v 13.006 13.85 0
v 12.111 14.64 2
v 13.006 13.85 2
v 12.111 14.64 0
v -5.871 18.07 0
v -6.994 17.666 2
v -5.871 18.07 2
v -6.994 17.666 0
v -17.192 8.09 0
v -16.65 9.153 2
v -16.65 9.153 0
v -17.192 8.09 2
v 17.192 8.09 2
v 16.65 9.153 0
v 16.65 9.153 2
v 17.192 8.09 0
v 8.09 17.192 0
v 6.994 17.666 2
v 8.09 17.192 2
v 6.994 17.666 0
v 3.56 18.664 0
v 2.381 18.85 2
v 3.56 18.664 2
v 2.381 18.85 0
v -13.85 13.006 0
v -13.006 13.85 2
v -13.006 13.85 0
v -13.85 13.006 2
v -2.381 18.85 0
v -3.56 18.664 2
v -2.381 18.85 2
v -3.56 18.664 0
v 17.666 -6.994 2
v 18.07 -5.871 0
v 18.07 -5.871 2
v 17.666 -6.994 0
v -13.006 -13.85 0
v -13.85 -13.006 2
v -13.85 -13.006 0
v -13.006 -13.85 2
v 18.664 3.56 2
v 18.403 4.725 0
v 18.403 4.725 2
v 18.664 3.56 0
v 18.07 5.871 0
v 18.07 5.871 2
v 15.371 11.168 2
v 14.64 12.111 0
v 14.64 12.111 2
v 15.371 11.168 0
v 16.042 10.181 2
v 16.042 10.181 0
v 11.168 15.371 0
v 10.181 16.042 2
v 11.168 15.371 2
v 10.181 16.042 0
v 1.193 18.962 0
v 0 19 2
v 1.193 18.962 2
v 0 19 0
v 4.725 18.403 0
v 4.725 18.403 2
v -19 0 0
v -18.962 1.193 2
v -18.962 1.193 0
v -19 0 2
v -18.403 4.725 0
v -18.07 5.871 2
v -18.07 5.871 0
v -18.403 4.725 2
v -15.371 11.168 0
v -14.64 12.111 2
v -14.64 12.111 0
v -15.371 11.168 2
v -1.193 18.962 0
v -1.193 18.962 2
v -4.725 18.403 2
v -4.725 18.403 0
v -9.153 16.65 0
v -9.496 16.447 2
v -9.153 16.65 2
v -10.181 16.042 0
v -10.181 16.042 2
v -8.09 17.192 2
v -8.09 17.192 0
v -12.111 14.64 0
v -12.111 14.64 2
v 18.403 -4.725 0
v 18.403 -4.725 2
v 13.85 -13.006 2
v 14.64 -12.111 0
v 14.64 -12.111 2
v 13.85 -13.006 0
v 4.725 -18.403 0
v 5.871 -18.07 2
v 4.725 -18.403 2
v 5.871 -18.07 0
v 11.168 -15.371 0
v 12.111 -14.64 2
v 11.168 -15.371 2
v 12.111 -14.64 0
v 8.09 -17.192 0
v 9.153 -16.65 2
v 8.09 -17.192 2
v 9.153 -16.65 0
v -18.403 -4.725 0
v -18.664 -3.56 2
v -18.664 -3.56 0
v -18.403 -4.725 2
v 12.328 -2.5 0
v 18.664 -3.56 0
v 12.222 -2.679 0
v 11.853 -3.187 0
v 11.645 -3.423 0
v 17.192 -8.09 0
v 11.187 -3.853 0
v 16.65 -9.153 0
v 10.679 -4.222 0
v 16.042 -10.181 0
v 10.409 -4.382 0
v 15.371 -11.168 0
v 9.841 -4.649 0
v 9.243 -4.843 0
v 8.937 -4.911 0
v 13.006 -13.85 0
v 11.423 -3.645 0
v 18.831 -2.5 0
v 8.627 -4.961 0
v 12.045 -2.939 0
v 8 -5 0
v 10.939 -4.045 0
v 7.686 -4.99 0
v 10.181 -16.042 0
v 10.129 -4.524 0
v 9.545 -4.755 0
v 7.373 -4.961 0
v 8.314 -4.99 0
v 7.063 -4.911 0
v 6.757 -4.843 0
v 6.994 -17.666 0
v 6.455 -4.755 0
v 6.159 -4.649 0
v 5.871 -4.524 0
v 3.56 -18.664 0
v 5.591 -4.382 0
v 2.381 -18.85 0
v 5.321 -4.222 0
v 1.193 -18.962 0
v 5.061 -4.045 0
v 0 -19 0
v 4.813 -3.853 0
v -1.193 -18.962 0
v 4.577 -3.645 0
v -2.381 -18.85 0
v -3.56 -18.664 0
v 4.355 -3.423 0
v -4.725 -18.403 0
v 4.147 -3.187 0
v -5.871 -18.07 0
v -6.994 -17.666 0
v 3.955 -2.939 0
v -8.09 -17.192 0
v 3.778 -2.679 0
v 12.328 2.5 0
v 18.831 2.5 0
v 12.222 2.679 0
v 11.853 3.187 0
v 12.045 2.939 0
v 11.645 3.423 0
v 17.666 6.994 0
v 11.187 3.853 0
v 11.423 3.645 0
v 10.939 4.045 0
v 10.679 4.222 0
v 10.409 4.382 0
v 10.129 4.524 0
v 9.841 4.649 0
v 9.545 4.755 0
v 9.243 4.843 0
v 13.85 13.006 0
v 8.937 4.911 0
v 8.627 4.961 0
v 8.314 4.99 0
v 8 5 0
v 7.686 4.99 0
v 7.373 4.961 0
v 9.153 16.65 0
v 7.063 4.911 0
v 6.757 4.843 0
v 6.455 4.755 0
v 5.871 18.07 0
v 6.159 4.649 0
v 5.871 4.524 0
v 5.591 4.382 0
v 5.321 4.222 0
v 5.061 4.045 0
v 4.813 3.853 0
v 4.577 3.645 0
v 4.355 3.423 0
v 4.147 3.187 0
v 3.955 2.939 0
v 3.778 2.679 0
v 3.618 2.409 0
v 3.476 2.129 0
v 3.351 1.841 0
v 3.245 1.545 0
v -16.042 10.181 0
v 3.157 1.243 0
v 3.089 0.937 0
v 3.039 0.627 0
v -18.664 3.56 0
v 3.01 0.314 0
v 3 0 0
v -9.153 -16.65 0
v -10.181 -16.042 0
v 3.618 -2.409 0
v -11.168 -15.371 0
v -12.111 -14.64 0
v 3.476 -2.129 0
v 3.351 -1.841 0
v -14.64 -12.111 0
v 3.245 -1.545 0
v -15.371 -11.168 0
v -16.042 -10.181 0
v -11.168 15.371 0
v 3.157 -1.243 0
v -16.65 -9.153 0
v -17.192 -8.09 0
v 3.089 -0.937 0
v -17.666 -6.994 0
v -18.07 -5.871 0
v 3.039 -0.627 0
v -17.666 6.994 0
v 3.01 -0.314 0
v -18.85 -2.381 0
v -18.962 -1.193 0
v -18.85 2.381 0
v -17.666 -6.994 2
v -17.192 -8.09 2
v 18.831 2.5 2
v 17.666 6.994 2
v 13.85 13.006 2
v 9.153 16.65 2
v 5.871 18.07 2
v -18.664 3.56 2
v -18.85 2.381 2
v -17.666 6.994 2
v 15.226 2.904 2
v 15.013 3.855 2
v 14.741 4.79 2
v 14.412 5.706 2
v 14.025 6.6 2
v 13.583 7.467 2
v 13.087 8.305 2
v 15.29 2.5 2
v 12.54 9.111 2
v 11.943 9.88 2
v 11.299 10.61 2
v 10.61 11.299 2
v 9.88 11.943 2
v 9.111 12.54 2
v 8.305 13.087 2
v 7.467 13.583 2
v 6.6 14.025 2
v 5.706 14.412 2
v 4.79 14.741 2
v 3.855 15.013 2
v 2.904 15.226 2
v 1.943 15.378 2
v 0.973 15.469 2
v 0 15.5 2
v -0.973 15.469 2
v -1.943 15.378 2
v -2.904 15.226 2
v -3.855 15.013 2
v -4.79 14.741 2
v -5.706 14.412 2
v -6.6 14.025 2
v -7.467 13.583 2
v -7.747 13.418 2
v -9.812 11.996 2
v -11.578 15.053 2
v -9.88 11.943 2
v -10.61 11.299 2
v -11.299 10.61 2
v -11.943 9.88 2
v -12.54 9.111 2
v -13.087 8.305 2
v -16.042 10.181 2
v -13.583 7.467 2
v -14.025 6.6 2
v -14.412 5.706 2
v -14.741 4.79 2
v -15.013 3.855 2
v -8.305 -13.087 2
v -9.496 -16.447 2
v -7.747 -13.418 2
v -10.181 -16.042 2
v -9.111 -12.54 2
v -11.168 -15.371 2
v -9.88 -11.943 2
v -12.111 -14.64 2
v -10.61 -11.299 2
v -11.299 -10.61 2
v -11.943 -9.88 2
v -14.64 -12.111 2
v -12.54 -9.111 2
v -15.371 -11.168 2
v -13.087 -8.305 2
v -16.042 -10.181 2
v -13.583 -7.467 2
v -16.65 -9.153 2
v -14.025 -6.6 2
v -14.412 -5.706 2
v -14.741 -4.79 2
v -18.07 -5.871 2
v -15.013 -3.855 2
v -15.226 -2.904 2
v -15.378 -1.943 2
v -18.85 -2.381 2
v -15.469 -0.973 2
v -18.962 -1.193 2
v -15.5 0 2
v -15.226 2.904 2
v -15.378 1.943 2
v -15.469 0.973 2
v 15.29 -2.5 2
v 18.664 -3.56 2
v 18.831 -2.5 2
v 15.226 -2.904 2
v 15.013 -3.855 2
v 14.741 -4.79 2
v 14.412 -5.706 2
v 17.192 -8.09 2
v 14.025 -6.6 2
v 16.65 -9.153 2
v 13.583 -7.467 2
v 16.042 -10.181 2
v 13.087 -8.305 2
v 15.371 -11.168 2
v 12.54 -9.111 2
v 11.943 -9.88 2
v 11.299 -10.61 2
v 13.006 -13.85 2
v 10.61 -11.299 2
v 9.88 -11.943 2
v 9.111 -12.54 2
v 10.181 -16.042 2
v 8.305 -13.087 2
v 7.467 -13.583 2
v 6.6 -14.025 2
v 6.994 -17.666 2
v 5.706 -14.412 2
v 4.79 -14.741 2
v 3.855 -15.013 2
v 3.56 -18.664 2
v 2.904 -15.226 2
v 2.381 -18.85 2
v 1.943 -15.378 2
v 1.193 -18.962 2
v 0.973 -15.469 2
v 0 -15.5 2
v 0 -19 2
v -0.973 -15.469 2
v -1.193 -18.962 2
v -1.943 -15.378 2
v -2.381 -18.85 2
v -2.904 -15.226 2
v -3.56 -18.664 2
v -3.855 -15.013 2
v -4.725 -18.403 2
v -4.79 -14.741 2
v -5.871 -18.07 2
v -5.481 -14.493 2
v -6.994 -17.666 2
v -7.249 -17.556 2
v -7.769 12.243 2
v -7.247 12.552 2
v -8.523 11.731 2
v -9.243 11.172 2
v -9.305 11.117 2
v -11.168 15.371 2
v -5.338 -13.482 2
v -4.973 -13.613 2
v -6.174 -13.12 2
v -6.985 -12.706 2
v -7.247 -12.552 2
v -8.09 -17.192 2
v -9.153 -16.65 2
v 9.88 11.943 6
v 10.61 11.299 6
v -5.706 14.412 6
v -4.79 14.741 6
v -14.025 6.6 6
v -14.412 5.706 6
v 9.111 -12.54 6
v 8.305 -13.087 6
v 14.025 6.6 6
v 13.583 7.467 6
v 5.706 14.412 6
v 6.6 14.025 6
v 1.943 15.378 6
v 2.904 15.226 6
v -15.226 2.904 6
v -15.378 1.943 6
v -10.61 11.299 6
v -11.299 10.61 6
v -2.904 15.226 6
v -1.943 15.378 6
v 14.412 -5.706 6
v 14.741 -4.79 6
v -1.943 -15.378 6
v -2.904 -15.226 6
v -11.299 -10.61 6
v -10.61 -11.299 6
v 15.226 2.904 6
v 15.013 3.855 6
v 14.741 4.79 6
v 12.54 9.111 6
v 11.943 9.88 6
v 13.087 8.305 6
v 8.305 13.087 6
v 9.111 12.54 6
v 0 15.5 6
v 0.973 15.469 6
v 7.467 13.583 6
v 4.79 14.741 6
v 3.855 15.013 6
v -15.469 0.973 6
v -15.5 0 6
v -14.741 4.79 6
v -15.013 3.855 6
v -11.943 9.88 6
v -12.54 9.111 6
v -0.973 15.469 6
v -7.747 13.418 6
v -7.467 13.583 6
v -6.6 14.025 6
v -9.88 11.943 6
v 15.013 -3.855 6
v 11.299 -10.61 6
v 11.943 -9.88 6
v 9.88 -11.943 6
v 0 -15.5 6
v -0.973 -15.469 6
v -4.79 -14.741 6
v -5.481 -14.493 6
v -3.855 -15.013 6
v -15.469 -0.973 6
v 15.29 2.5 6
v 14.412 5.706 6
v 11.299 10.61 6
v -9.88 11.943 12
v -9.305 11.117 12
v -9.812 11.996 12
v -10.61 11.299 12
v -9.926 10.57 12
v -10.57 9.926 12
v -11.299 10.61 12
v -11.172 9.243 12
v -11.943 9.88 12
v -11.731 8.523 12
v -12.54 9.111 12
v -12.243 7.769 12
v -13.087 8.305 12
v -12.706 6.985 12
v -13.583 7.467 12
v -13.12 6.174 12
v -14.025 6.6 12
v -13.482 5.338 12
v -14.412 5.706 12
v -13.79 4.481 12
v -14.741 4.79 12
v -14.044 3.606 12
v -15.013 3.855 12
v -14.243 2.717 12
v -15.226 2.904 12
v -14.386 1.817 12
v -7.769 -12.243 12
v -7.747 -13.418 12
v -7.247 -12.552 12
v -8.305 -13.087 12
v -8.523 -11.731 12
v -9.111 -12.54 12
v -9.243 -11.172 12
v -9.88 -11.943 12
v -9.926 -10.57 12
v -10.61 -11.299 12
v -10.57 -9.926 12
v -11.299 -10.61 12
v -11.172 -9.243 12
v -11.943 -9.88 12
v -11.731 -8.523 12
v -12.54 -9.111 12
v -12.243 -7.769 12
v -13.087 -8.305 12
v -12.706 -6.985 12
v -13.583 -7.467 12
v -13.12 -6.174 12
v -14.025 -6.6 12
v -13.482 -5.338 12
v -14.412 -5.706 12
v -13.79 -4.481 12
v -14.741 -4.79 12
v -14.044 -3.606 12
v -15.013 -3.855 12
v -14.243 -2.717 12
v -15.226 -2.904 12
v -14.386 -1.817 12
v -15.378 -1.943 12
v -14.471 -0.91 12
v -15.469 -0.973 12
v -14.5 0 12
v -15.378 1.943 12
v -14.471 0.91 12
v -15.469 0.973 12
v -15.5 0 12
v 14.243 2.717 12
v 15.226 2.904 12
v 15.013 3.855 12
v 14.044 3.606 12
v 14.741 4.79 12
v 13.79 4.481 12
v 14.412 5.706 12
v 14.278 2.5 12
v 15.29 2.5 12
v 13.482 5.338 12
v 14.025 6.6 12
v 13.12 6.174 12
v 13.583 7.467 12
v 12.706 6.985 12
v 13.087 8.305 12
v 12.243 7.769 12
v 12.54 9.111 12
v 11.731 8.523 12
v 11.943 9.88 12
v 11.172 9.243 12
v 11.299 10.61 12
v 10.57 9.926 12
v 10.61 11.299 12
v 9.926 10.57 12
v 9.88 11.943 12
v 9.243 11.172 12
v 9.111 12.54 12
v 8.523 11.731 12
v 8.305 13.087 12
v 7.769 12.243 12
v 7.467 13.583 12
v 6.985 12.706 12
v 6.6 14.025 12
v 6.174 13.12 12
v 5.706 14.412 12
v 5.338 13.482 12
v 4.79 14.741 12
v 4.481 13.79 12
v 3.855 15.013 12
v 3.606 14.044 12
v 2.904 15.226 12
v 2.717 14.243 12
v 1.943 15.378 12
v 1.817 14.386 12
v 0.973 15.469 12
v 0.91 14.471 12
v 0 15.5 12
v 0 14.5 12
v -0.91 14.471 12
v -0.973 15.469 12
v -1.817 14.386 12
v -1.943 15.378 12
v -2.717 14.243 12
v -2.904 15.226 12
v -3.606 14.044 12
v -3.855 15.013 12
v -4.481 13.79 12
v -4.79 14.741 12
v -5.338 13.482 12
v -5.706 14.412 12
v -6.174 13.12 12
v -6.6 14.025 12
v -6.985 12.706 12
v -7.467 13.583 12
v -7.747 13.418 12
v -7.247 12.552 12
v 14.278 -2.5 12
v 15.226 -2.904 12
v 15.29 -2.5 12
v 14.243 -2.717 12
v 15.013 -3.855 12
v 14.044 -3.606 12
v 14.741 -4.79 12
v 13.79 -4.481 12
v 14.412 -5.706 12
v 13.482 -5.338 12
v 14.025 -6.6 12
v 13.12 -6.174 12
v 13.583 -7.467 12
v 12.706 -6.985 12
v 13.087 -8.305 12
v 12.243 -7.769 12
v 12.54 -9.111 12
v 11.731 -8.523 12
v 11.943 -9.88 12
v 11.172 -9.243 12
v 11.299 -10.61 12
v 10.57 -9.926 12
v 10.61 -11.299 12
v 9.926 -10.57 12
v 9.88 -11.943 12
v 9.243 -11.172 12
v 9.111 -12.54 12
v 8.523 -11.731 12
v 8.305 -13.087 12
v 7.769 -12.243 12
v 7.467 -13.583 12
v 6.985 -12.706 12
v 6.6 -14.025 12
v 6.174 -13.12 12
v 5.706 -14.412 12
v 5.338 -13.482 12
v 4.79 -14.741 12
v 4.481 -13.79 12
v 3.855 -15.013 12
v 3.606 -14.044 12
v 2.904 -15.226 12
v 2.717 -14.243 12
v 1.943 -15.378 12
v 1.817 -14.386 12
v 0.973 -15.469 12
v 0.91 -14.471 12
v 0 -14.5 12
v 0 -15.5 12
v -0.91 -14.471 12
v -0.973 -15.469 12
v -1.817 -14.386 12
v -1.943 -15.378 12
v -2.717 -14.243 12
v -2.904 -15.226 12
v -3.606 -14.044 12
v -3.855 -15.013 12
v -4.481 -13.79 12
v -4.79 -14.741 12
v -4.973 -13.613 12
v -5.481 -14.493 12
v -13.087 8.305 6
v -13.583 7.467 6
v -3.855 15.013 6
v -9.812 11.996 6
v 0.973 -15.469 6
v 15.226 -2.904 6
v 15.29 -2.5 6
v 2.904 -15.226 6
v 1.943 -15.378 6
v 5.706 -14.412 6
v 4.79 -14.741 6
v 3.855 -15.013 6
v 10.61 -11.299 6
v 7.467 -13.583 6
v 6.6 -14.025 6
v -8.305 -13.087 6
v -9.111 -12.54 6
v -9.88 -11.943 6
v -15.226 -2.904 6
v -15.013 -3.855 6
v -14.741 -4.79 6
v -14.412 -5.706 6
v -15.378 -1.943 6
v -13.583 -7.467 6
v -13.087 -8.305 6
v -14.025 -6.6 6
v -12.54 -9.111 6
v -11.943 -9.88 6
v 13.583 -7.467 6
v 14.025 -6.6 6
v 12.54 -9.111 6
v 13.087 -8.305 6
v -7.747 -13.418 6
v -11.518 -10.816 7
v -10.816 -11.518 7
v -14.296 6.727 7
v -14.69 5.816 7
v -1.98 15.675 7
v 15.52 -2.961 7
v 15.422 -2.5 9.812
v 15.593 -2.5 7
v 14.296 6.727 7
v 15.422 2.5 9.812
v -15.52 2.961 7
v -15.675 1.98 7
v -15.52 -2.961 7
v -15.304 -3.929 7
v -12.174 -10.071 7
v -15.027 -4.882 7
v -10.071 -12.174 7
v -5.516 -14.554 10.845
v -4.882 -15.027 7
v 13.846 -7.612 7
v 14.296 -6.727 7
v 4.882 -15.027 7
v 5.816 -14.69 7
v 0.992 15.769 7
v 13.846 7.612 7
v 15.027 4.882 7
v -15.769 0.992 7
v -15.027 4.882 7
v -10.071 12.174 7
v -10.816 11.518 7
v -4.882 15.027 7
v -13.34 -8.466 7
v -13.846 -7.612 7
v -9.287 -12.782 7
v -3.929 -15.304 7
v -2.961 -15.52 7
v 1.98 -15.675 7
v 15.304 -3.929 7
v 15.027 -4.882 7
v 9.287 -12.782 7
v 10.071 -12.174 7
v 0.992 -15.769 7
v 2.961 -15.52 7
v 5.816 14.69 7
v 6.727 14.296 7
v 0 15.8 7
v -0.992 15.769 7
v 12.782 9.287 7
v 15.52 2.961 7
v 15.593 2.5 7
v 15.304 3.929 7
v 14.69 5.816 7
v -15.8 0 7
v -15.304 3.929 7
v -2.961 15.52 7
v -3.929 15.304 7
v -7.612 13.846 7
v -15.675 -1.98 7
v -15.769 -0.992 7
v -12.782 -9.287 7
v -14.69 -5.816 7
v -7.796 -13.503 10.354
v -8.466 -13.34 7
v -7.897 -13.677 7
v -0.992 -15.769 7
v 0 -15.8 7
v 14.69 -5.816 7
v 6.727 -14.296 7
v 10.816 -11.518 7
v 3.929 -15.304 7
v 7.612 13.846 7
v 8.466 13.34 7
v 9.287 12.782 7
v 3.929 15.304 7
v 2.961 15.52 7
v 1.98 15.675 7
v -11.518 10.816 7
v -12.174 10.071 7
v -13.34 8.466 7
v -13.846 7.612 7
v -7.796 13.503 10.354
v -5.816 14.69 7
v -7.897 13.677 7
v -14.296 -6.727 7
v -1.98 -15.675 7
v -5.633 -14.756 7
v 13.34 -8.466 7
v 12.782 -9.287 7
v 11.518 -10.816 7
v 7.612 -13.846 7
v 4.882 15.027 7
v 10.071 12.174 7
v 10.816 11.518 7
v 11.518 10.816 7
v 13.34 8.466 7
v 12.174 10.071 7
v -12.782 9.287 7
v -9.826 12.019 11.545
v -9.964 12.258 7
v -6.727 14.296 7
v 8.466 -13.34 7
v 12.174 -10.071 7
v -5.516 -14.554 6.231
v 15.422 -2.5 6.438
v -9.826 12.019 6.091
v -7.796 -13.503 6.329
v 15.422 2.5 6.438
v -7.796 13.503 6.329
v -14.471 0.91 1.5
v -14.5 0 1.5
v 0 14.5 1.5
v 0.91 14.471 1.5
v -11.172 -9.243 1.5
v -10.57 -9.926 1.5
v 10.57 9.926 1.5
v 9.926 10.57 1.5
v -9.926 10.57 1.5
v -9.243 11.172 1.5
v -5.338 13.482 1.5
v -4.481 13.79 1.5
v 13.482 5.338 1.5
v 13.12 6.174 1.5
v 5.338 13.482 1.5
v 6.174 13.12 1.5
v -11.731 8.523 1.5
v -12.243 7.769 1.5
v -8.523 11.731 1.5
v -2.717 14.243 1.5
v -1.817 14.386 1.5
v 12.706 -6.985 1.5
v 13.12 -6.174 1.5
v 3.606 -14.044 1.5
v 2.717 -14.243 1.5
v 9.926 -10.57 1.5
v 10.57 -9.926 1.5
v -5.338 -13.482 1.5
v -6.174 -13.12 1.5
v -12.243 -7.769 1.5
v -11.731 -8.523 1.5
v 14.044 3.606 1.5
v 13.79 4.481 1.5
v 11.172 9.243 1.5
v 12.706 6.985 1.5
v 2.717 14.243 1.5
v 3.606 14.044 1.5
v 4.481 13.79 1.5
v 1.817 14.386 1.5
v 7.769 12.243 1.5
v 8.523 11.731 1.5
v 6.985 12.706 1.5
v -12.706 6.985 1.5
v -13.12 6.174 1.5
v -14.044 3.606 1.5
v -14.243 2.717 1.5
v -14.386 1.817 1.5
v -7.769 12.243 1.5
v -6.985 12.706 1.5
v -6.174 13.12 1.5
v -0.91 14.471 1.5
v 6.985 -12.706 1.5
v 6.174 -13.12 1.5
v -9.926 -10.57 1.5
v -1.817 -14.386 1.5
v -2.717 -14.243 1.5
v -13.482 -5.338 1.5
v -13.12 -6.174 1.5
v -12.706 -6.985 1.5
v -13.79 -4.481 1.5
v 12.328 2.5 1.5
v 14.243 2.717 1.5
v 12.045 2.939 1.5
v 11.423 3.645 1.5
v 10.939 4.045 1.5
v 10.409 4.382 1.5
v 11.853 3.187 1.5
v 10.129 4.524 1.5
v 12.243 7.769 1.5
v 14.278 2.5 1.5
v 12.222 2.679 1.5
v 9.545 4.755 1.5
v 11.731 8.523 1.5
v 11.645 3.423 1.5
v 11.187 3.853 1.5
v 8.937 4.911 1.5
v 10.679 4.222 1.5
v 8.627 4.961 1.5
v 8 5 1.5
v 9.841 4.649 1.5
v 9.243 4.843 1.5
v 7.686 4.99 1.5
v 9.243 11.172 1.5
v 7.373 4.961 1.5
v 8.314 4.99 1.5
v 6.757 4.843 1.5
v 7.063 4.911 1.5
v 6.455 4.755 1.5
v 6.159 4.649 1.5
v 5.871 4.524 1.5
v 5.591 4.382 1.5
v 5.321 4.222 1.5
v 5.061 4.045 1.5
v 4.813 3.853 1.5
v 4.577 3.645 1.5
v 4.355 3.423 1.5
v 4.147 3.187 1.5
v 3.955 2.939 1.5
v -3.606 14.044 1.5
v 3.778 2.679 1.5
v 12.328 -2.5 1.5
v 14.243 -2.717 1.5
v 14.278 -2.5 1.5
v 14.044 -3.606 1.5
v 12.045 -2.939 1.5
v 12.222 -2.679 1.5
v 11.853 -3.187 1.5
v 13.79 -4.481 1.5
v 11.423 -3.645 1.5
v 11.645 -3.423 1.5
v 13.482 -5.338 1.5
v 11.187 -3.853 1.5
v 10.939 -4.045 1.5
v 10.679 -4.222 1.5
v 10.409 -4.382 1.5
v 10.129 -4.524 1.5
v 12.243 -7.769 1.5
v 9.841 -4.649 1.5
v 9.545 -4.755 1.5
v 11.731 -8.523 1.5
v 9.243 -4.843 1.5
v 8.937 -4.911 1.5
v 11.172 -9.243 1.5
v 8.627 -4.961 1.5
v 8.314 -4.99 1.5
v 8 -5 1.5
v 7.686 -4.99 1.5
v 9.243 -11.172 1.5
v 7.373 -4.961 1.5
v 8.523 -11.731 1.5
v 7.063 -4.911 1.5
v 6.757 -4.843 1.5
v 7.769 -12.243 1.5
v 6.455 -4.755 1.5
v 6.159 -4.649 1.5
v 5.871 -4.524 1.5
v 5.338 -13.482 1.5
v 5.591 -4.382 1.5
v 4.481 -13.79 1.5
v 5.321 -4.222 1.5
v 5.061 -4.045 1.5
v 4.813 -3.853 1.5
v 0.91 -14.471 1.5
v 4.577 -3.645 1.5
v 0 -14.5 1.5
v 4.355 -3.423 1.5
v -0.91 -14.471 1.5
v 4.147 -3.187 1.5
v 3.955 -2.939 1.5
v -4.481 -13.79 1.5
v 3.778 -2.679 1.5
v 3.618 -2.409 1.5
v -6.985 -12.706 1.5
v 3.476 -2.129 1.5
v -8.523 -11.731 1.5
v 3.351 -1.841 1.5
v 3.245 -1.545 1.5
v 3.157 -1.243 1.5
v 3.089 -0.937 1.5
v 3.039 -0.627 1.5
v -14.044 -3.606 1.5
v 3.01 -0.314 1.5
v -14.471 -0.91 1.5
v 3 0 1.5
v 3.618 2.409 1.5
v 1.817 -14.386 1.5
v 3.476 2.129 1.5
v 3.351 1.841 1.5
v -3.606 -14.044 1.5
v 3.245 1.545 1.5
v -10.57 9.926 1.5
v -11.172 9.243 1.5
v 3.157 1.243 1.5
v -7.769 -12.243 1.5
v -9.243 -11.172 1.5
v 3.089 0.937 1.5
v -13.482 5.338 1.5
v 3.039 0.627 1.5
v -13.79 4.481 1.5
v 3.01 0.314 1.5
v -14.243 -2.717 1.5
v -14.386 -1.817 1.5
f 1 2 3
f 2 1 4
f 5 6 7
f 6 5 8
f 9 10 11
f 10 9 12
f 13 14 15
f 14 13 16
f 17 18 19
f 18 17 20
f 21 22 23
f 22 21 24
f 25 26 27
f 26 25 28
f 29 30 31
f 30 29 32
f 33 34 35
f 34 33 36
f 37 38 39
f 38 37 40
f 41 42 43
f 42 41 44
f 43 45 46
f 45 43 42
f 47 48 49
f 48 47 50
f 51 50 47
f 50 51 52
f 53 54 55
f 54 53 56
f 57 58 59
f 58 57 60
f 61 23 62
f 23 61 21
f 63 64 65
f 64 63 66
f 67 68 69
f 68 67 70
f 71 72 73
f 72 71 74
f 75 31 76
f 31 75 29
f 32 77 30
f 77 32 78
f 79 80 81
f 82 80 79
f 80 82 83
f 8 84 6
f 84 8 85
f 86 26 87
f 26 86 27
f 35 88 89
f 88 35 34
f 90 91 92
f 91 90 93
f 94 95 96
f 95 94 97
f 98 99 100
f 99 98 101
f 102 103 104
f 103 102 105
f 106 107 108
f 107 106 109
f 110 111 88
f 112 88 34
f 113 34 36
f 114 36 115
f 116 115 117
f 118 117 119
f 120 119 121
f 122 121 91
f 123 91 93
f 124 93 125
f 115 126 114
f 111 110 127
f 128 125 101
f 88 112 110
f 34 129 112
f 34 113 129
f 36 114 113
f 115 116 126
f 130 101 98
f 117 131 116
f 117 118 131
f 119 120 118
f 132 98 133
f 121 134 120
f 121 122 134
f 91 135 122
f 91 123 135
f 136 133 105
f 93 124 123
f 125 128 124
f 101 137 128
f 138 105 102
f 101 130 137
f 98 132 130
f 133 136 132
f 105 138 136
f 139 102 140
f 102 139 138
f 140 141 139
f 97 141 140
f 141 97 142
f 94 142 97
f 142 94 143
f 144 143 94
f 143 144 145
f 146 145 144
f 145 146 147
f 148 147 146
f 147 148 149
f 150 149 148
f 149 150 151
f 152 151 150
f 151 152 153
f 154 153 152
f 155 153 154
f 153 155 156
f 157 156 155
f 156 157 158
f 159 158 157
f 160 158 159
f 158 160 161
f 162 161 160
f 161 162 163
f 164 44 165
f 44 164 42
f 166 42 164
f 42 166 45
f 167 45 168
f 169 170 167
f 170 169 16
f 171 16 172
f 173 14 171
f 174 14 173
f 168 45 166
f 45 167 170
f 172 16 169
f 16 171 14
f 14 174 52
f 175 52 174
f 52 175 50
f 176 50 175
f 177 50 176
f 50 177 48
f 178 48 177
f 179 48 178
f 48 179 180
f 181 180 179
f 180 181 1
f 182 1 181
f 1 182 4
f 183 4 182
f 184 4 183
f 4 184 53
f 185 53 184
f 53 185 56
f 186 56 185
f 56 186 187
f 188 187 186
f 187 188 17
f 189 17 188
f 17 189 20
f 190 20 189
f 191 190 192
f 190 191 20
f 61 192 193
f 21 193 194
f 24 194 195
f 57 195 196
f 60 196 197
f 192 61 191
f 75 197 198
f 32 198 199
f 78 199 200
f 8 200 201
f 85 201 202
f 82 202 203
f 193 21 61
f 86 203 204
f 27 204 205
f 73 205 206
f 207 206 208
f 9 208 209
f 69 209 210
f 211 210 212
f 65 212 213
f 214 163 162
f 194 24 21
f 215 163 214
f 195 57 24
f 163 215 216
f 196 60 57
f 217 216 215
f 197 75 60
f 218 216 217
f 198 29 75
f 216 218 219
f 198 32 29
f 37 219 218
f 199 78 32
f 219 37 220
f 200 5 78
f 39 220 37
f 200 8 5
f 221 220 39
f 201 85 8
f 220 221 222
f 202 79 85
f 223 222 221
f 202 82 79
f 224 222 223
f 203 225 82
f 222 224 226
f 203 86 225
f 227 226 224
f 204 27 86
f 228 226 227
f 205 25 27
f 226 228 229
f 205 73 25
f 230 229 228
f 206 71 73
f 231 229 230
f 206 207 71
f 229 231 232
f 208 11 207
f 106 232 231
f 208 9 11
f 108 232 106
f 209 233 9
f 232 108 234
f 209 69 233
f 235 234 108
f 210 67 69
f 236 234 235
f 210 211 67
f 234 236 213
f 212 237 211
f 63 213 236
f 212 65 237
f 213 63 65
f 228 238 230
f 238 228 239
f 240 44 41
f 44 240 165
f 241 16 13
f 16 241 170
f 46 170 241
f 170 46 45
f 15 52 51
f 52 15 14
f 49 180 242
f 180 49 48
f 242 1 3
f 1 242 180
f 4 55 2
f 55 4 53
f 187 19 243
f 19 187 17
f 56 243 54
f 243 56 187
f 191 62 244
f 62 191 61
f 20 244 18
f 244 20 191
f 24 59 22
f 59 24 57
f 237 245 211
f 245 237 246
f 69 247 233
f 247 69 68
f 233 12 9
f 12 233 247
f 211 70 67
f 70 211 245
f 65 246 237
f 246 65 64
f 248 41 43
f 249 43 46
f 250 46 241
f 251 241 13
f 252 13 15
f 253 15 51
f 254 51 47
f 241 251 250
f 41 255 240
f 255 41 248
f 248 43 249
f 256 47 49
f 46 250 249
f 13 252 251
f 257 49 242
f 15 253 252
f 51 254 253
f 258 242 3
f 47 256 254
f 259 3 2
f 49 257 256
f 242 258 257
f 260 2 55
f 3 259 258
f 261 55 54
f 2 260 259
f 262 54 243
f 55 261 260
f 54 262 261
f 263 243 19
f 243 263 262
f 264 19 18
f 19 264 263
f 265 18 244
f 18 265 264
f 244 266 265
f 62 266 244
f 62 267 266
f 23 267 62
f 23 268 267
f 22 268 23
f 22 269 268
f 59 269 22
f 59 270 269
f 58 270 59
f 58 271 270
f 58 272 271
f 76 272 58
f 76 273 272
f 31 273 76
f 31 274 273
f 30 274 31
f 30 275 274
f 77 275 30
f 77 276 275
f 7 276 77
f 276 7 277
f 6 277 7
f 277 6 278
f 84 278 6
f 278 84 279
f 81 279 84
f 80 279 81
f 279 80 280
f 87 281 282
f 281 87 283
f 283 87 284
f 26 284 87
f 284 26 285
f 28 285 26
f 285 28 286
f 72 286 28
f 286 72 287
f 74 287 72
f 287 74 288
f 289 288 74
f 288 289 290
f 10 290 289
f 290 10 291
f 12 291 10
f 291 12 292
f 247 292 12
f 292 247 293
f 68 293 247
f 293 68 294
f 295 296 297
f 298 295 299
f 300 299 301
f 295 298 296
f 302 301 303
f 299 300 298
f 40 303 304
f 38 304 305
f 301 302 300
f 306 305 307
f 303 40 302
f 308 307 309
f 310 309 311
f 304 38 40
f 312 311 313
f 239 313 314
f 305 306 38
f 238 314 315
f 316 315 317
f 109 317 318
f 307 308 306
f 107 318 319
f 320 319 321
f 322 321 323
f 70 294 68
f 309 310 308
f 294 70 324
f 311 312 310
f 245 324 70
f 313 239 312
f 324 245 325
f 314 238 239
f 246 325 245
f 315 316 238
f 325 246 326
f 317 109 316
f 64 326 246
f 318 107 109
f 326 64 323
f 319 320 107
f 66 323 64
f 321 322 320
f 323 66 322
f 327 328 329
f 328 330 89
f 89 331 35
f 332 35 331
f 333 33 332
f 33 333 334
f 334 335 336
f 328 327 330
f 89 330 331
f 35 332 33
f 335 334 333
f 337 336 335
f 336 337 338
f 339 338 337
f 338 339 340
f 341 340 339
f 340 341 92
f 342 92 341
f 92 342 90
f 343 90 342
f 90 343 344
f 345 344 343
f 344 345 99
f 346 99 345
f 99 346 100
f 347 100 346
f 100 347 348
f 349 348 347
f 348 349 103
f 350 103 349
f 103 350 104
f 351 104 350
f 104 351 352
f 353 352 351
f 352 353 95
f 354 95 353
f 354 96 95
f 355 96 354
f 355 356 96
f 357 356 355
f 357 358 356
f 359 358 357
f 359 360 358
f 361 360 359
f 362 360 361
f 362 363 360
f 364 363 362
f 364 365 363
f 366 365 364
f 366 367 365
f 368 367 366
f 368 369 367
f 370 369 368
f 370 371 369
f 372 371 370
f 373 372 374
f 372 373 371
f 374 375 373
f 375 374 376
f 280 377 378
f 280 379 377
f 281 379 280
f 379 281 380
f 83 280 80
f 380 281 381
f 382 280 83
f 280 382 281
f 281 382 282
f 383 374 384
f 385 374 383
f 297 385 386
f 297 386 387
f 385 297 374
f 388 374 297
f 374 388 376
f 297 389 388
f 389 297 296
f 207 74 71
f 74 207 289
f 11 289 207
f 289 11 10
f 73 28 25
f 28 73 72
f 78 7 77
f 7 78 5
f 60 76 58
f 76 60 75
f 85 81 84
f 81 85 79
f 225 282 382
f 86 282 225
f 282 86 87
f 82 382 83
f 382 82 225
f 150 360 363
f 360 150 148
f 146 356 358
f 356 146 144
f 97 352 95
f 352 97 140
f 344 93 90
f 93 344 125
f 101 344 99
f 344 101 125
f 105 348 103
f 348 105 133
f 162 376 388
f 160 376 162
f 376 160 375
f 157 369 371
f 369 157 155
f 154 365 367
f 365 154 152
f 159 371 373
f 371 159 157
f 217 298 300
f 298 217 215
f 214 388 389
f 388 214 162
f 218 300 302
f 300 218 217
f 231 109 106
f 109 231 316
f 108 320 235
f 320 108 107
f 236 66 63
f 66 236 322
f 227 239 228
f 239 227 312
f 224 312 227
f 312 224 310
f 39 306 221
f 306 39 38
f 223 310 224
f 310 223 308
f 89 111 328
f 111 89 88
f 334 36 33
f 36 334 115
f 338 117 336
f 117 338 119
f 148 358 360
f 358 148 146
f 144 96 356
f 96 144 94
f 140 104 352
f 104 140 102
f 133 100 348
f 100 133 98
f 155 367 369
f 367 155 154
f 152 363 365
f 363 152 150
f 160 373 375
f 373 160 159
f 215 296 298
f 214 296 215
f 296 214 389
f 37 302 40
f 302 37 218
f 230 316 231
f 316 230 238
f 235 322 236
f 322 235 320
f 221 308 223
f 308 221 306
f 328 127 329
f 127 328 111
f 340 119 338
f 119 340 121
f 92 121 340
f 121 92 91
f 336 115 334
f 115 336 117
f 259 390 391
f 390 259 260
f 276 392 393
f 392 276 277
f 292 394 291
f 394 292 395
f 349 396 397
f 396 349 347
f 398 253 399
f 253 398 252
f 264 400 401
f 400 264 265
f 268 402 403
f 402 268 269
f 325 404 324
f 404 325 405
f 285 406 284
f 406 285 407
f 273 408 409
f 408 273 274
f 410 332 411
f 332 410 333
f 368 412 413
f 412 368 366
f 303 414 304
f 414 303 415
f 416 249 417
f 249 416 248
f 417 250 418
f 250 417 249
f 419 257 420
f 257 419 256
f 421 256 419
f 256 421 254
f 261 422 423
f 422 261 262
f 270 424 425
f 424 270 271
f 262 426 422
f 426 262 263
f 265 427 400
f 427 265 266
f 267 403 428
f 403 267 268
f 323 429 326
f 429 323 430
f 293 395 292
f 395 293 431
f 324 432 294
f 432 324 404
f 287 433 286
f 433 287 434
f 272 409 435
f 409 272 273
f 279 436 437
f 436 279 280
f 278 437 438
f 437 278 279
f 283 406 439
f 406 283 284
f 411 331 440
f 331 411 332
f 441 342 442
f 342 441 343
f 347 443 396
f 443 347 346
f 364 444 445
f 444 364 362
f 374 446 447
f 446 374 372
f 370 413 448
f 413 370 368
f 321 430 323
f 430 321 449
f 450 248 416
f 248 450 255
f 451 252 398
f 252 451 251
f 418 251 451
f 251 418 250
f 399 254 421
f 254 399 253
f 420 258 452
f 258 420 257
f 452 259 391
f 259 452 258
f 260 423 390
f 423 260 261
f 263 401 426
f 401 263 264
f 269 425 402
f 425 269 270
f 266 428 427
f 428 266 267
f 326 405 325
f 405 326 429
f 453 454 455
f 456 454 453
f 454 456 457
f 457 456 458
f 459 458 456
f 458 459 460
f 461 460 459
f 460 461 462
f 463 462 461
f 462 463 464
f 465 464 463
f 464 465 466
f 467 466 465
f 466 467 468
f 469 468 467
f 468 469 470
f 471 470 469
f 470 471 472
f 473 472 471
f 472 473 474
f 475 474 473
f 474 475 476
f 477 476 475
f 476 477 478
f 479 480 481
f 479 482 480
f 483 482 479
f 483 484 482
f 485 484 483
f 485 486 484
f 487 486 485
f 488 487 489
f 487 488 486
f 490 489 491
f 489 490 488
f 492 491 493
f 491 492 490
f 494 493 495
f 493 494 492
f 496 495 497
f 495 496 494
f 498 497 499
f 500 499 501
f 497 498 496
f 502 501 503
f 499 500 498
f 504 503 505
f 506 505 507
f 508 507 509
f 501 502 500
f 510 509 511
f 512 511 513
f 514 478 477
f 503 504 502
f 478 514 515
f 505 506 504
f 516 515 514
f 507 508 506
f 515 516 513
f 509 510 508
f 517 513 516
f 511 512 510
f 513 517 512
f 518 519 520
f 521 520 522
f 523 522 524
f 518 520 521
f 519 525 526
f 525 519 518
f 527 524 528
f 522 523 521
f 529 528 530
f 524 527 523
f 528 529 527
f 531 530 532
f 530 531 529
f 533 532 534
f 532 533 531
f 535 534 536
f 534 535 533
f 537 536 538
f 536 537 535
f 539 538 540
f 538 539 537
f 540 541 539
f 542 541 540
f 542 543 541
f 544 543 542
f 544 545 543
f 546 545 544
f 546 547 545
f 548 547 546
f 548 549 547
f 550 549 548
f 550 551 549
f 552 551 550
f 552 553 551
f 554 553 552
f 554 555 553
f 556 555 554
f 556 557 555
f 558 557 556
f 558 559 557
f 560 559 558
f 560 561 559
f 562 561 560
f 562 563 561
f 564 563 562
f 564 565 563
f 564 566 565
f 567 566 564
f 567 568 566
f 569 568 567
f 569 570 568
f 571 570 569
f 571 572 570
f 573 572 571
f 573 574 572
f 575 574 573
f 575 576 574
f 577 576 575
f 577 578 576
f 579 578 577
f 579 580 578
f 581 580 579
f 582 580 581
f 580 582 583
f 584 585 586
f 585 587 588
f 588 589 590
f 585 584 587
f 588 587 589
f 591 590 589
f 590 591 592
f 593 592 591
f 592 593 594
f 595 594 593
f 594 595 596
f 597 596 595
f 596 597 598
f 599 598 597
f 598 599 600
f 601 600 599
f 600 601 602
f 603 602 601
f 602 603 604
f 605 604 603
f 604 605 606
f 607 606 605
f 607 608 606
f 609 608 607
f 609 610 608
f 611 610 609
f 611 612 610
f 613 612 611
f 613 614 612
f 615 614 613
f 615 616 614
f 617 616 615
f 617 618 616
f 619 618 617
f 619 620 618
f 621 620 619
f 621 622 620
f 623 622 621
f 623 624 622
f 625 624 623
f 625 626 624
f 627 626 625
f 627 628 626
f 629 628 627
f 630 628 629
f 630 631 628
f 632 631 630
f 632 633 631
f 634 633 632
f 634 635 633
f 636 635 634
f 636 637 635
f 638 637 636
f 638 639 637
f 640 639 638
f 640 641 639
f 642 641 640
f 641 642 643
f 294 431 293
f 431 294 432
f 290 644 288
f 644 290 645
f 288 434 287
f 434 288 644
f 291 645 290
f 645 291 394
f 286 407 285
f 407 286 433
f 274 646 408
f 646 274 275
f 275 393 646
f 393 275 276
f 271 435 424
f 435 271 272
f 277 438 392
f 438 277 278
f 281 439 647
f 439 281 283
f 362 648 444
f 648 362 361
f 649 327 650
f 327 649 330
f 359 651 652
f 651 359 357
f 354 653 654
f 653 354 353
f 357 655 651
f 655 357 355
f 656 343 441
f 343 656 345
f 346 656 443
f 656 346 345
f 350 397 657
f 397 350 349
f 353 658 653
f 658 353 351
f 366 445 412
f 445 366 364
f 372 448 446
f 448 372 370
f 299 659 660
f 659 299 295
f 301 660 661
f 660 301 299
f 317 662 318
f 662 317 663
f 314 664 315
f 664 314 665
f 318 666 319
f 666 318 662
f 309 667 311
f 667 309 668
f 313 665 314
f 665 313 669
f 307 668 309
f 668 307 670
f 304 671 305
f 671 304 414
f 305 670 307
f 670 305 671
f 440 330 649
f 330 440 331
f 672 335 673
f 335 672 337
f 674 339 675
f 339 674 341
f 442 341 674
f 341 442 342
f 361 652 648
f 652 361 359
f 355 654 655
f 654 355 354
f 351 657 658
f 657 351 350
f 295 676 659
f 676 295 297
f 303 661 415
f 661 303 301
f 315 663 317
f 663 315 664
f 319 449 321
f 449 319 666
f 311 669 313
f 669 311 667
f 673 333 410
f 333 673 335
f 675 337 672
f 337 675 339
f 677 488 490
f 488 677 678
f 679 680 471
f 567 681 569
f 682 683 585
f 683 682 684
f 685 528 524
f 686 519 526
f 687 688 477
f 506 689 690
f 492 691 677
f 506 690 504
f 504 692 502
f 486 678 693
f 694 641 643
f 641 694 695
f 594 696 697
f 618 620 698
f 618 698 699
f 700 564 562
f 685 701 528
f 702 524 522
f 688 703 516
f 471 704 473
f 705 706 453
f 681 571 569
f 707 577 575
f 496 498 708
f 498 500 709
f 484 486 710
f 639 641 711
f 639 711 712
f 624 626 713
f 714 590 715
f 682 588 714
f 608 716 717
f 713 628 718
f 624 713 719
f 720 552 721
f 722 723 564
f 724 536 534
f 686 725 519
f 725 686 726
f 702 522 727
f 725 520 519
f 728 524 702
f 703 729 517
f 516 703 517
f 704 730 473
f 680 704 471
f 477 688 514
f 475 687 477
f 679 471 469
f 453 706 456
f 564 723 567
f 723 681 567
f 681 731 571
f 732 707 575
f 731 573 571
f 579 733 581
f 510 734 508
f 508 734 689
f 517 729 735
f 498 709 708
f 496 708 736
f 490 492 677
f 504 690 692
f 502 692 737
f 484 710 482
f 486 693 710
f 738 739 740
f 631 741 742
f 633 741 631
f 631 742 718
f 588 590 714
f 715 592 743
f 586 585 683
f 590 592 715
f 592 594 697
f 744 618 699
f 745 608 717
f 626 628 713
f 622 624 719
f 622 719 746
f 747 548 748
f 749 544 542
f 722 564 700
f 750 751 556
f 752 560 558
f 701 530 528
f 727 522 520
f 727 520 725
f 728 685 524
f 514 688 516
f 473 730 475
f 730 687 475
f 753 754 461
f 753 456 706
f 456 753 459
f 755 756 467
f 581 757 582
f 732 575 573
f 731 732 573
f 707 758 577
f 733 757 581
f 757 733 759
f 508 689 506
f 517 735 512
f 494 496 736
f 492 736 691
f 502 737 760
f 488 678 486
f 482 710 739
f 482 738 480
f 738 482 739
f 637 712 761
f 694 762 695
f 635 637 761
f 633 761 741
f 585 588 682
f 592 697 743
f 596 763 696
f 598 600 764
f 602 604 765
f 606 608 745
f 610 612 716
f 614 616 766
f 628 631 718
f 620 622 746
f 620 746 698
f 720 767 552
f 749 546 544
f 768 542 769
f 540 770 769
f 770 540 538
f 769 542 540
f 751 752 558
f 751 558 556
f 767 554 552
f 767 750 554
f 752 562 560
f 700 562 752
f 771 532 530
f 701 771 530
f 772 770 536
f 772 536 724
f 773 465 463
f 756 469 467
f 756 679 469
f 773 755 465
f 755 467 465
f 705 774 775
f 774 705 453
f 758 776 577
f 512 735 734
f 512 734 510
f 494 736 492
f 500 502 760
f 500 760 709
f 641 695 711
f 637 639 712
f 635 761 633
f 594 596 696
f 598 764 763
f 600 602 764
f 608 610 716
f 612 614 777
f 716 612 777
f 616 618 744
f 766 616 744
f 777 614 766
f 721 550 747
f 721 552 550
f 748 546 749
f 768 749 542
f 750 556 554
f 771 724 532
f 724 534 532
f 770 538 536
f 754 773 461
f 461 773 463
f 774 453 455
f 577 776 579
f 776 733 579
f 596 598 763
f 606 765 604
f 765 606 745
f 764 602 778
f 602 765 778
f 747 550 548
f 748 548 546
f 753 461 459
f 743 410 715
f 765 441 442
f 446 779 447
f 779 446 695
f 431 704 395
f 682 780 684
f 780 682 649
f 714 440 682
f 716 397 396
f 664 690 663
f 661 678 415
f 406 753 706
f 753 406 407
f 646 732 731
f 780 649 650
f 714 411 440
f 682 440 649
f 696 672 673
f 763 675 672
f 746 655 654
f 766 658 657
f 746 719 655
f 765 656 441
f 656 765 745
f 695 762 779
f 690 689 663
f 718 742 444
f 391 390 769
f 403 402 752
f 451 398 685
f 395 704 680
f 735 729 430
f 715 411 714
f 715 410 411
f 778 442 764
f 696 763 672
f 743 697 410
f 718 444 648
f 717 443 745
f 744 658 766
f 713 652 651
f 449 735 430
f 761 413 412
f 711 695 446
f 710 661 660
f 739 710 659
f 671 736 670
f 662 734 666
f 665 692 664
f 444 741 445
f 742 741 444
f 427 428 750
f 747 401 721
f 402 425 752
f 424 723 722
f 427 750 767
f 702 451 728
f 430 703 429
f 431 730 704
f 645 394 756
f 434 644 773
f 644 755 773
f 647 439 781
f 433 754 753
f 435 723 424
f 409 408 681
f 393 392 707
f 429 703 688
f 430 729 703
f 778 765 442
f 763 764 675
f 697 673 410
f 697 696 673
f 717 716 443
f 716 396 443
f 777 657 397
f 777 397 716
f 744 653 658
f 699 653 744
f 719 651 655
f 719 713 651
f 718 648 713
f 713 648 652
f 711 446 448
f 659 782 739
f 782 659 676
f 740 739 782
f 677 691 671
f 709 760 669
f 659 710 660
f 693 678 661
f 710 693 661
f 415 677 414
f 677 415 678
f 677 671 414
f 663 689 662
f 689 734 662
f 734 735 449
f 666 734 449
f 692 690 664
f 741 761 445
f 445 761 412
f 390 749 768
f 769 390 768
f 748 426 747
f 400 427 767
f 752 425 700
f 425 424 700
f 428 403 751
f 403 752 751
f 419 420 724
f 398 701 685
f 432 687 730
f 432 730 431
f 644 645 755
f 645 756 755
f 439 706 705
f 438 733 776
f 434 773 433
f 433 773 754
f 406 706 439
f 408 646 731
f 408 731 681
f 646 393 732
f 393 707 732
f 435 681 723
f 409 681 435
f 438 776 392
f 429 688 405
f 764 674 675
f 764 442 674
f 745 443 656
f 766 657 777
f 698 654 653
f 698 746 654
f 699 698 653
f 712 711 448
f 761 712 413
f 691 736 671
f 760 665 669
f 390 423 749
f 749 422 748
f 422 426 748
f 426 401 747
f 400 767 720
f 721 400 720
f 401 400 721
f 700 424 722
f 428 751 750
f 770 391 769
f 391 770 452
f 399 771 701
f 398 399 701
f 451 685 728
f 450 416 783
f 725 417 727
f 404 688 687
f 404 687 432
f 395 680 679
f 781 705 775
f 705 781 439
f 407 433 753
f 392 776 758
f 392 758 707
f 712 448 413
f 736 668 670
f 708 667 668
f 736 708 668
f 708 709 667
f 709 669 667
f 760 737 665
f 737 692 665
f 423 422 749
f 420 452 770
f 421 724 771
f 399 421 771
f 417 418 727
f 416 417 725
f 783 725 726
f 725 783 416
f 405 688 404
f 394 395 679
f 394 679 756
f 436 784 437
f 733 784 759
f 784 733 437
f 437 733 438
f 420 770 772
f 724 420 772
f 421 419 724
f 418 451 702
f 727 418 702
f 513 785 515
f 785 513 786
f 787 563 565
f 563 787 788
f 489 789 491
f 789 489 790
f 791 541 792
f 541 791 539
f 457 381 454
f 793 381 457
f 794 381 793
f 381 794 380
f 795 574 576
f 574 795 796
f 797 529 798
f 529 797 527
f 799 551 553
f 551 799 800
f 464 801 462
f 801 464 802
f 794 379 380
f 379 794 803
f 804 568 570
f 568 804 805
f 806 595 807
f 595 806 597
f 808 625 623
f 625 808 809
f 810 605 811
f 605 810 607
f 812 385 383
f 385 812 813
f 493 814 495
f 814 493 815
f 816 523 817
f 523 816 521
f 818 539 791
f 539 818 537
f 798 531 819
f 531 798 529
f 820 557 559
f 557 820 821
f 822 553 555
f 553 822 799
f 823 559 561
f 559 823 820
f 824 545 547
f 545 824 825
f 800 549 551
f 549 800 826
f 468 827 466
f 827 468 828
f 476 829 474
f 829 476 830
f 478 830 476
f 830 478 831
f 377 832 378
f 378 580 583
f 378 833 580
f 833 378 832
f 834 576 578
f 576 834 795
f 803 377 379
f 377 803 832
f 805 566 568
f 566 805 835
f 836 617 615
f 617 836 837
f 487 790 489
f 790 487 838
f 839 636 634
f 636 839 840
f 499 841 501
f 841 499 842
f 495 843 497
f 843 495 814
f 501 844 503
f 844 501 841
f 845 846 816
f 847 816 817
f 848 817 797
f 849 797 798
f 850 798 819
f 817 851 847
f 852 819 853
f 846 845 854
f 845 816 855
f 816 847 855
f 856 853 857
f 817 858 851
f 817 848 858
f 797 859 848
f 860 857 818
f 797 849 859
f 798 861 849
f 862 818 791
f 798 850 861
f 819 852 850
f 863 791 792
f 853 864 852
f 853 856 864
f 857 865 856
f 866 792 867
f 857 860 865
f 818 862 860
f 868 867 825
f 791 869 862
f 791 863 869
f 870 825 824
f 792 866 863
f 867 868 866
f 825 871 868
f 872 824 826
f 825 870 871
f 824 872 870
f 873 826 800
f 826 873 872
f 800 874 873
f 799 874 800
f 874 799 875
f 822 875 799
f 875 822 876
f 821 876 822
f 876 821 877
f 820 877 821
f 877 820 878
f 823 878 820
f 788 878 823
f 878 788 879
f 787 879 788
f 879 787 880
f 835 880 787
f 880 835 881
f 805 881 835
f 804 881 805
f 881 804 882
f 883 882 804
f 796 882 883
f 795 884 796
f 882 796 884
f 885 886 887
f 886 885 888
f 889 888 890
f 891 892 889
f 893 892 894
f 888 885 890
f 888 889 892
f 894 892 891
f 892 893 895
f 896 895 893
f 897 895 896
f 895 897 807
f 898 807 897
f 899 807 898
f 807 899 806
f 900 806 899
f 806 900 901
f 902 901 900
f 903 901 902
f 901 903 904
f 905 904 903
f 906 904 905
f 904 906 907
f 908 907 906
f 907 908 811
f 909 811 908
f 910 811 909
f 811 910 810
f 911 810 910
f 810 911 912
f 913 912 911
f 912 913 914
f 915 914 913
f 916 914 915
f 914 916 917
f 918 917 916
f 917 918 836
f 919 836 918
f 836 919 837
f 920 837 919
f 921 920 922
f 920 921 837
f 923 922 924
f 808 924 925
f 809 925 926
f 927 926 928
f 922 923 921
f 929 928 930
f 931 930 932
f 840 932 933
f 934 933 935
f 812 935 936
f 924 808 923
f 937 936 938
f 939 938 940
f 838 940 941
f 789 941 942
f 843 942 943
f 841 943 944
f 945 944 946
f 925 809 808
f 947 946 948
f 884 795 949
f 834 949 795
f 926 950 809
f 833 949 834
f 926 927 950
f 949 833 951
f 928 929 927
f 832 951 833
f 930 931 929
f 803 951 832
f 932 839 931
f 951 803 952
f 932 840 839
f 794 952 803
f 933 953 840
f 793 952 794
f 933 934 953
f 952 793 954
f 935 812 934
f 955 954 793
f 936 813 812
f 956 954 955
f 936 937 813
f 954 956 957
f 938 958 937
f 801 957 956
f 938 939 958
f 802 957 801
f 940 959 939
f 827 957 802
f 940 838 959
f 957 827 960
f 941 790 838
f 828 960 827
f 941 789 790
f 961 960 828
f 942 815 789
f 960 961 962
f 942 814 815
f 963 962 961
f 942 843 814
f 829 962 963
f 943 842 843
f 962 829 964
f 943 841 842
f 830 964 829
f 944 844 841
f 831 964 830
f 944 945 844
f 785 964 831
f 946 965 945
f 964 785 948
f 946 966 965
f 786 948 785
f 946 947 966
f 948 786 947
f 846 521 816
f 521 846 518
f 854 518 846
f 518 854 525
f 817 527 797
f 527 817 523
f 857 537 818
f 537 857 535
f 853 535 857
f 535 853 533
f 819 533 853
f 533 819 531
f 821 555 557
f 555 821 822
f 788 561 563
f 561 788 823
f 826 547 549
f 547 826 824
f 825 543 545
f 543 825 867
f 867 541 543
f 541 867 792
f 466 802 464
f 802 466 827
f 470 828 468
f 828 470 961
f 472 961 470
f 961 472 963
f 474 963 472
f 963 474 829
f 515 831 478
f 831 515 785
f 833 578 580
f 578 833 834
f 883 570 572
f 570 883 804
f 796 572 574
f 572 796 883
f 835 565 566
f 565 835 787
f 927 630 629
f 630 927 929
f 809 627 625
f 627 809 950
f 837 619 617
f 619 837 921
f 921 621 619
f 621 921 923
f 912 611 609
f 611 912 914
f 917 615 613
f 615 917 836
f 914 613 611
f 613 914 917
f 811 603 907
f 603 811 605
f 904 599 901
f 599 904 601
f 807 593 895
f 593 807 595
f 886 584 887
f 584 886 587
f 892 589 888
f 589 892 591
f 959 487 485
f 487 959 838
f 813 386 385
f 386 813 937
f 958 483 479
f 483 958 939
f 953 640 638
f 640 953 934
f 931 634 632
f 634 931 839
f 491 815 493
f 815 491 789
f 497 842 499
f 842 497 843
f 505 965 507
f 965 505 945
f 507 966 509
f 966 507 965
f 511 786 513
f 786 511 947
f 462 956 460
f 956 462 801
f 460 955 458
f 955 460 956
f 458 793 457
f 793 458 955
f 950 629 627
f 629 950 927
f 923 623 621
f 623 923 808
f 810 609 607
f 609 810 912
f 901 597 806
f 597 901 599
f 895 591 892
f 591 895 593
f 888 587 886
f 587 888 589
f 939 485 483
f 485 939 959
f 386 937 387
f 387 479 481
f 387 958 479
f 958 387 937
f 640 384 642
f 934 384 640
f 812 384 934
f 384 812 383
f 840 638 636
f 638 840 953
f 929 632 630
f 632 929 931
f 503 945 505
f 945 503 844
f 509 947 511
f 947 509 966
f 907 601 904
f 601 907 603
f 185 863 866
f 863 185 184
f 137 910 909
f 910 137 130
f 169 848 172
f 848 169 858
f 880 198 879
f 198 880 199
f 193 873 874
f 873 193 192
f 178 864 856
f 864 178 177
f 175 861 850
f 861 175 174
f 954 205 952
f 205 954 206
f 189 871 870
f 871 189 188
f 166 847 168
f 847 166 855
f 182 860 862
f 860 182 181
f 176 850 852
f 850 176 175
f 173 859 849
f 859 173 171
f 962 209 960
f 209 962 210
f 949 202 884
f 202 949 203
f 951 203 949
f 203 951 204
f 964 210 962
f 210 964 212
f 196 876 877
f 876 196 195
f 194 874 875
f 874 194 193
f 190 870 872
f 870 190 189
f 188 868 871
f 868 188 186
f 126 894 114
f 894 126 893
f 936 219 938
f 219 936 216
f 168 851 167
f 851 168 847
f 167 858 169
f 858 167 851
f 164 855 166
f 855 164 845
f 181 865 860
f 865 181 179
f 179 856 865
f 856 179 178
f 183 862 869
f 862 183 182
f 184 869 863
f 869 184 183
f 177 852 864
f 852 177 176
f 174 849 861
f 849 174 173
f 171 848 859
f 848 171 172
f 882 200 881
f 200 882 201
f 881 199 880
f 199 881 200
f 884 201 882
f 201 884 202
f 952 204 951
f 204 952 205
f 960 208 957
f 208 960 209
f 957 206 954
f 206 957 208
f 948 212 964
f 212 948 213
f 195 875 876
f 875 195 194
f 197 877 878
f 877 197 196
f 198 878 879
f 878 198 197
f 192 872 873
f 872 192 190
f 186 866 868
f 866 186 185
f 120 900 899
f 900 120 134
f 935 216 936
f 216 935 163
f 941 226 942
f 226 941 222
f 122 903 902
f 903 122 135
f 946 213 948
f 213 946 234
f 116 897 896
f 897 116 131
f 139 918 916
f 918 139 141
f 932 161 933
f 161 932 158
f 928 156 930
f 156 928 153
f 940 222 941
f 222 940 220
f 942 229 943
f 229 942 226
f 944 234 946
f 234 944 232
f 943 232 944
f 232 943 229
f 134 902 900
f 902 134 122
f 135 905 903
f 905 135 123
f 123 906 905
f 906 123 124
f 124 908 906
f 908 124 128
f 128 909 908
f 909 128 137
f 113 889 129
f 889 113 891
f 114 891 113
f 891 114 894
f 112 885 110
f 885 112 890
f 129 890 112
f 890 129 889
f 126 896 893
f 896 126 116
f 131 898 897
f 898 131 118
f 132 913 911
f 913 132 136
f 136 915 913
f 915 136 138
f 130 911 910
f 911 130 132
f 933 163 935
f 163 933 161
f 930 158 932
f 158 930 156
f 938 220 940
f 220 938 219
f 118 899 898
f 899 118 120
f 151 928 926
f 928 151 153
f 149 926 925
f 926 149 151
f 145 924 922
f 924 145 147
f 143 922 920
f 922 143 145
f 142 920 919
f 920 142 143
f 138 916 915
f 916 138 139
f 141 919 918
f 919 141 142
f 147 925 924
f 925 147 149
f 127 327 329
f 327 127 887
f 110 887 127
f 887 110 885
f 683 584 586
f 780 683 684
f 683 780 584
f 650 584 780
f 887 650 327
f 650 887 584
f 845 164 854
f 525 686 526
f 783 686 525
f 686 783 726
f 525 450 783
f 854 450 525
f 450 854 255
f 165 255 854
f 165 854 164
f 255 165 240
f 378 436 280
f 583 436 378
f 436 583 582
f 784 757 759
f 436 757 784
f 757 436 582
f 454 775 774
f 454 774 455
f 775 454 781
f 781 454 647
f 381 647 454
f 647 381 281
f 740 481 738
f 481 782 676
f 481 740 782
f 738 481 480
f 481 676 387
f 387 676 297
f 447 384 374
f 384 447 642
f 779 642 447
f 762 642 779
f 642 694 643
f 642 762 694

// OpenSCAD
  $fn = 100;
  
  difference(){
      union(){
          cylinder(2, 38/2, 38/2);
          cylinder(12, 31/2, 31/2);
          translate([0,0,7]) cylinder(5, 31.6/2, 31/2);
          translate([0,0,6]) cylinder(1, 31/2, 31.6/2);
      }
      translate([0,0,1.5]) cylinder(12, 29/2, 29/2);
      translate([8,0,0]) cylinder(12, 10/2, 10/2);
      hull(){
        translate([8,0,0]) cylinder(12, 5/2, 5/2);
        translate([100,0,0]) cylinder(12, 5/2, 5/2);
      }
      rotate([0,0,120]) translate([0,0,2]) #cube([100, 5/2, 20]);
      rotate([0,0,-120]) translate([0,0,2]) #cube([100, 5/2, 20]);
      
      
  }
